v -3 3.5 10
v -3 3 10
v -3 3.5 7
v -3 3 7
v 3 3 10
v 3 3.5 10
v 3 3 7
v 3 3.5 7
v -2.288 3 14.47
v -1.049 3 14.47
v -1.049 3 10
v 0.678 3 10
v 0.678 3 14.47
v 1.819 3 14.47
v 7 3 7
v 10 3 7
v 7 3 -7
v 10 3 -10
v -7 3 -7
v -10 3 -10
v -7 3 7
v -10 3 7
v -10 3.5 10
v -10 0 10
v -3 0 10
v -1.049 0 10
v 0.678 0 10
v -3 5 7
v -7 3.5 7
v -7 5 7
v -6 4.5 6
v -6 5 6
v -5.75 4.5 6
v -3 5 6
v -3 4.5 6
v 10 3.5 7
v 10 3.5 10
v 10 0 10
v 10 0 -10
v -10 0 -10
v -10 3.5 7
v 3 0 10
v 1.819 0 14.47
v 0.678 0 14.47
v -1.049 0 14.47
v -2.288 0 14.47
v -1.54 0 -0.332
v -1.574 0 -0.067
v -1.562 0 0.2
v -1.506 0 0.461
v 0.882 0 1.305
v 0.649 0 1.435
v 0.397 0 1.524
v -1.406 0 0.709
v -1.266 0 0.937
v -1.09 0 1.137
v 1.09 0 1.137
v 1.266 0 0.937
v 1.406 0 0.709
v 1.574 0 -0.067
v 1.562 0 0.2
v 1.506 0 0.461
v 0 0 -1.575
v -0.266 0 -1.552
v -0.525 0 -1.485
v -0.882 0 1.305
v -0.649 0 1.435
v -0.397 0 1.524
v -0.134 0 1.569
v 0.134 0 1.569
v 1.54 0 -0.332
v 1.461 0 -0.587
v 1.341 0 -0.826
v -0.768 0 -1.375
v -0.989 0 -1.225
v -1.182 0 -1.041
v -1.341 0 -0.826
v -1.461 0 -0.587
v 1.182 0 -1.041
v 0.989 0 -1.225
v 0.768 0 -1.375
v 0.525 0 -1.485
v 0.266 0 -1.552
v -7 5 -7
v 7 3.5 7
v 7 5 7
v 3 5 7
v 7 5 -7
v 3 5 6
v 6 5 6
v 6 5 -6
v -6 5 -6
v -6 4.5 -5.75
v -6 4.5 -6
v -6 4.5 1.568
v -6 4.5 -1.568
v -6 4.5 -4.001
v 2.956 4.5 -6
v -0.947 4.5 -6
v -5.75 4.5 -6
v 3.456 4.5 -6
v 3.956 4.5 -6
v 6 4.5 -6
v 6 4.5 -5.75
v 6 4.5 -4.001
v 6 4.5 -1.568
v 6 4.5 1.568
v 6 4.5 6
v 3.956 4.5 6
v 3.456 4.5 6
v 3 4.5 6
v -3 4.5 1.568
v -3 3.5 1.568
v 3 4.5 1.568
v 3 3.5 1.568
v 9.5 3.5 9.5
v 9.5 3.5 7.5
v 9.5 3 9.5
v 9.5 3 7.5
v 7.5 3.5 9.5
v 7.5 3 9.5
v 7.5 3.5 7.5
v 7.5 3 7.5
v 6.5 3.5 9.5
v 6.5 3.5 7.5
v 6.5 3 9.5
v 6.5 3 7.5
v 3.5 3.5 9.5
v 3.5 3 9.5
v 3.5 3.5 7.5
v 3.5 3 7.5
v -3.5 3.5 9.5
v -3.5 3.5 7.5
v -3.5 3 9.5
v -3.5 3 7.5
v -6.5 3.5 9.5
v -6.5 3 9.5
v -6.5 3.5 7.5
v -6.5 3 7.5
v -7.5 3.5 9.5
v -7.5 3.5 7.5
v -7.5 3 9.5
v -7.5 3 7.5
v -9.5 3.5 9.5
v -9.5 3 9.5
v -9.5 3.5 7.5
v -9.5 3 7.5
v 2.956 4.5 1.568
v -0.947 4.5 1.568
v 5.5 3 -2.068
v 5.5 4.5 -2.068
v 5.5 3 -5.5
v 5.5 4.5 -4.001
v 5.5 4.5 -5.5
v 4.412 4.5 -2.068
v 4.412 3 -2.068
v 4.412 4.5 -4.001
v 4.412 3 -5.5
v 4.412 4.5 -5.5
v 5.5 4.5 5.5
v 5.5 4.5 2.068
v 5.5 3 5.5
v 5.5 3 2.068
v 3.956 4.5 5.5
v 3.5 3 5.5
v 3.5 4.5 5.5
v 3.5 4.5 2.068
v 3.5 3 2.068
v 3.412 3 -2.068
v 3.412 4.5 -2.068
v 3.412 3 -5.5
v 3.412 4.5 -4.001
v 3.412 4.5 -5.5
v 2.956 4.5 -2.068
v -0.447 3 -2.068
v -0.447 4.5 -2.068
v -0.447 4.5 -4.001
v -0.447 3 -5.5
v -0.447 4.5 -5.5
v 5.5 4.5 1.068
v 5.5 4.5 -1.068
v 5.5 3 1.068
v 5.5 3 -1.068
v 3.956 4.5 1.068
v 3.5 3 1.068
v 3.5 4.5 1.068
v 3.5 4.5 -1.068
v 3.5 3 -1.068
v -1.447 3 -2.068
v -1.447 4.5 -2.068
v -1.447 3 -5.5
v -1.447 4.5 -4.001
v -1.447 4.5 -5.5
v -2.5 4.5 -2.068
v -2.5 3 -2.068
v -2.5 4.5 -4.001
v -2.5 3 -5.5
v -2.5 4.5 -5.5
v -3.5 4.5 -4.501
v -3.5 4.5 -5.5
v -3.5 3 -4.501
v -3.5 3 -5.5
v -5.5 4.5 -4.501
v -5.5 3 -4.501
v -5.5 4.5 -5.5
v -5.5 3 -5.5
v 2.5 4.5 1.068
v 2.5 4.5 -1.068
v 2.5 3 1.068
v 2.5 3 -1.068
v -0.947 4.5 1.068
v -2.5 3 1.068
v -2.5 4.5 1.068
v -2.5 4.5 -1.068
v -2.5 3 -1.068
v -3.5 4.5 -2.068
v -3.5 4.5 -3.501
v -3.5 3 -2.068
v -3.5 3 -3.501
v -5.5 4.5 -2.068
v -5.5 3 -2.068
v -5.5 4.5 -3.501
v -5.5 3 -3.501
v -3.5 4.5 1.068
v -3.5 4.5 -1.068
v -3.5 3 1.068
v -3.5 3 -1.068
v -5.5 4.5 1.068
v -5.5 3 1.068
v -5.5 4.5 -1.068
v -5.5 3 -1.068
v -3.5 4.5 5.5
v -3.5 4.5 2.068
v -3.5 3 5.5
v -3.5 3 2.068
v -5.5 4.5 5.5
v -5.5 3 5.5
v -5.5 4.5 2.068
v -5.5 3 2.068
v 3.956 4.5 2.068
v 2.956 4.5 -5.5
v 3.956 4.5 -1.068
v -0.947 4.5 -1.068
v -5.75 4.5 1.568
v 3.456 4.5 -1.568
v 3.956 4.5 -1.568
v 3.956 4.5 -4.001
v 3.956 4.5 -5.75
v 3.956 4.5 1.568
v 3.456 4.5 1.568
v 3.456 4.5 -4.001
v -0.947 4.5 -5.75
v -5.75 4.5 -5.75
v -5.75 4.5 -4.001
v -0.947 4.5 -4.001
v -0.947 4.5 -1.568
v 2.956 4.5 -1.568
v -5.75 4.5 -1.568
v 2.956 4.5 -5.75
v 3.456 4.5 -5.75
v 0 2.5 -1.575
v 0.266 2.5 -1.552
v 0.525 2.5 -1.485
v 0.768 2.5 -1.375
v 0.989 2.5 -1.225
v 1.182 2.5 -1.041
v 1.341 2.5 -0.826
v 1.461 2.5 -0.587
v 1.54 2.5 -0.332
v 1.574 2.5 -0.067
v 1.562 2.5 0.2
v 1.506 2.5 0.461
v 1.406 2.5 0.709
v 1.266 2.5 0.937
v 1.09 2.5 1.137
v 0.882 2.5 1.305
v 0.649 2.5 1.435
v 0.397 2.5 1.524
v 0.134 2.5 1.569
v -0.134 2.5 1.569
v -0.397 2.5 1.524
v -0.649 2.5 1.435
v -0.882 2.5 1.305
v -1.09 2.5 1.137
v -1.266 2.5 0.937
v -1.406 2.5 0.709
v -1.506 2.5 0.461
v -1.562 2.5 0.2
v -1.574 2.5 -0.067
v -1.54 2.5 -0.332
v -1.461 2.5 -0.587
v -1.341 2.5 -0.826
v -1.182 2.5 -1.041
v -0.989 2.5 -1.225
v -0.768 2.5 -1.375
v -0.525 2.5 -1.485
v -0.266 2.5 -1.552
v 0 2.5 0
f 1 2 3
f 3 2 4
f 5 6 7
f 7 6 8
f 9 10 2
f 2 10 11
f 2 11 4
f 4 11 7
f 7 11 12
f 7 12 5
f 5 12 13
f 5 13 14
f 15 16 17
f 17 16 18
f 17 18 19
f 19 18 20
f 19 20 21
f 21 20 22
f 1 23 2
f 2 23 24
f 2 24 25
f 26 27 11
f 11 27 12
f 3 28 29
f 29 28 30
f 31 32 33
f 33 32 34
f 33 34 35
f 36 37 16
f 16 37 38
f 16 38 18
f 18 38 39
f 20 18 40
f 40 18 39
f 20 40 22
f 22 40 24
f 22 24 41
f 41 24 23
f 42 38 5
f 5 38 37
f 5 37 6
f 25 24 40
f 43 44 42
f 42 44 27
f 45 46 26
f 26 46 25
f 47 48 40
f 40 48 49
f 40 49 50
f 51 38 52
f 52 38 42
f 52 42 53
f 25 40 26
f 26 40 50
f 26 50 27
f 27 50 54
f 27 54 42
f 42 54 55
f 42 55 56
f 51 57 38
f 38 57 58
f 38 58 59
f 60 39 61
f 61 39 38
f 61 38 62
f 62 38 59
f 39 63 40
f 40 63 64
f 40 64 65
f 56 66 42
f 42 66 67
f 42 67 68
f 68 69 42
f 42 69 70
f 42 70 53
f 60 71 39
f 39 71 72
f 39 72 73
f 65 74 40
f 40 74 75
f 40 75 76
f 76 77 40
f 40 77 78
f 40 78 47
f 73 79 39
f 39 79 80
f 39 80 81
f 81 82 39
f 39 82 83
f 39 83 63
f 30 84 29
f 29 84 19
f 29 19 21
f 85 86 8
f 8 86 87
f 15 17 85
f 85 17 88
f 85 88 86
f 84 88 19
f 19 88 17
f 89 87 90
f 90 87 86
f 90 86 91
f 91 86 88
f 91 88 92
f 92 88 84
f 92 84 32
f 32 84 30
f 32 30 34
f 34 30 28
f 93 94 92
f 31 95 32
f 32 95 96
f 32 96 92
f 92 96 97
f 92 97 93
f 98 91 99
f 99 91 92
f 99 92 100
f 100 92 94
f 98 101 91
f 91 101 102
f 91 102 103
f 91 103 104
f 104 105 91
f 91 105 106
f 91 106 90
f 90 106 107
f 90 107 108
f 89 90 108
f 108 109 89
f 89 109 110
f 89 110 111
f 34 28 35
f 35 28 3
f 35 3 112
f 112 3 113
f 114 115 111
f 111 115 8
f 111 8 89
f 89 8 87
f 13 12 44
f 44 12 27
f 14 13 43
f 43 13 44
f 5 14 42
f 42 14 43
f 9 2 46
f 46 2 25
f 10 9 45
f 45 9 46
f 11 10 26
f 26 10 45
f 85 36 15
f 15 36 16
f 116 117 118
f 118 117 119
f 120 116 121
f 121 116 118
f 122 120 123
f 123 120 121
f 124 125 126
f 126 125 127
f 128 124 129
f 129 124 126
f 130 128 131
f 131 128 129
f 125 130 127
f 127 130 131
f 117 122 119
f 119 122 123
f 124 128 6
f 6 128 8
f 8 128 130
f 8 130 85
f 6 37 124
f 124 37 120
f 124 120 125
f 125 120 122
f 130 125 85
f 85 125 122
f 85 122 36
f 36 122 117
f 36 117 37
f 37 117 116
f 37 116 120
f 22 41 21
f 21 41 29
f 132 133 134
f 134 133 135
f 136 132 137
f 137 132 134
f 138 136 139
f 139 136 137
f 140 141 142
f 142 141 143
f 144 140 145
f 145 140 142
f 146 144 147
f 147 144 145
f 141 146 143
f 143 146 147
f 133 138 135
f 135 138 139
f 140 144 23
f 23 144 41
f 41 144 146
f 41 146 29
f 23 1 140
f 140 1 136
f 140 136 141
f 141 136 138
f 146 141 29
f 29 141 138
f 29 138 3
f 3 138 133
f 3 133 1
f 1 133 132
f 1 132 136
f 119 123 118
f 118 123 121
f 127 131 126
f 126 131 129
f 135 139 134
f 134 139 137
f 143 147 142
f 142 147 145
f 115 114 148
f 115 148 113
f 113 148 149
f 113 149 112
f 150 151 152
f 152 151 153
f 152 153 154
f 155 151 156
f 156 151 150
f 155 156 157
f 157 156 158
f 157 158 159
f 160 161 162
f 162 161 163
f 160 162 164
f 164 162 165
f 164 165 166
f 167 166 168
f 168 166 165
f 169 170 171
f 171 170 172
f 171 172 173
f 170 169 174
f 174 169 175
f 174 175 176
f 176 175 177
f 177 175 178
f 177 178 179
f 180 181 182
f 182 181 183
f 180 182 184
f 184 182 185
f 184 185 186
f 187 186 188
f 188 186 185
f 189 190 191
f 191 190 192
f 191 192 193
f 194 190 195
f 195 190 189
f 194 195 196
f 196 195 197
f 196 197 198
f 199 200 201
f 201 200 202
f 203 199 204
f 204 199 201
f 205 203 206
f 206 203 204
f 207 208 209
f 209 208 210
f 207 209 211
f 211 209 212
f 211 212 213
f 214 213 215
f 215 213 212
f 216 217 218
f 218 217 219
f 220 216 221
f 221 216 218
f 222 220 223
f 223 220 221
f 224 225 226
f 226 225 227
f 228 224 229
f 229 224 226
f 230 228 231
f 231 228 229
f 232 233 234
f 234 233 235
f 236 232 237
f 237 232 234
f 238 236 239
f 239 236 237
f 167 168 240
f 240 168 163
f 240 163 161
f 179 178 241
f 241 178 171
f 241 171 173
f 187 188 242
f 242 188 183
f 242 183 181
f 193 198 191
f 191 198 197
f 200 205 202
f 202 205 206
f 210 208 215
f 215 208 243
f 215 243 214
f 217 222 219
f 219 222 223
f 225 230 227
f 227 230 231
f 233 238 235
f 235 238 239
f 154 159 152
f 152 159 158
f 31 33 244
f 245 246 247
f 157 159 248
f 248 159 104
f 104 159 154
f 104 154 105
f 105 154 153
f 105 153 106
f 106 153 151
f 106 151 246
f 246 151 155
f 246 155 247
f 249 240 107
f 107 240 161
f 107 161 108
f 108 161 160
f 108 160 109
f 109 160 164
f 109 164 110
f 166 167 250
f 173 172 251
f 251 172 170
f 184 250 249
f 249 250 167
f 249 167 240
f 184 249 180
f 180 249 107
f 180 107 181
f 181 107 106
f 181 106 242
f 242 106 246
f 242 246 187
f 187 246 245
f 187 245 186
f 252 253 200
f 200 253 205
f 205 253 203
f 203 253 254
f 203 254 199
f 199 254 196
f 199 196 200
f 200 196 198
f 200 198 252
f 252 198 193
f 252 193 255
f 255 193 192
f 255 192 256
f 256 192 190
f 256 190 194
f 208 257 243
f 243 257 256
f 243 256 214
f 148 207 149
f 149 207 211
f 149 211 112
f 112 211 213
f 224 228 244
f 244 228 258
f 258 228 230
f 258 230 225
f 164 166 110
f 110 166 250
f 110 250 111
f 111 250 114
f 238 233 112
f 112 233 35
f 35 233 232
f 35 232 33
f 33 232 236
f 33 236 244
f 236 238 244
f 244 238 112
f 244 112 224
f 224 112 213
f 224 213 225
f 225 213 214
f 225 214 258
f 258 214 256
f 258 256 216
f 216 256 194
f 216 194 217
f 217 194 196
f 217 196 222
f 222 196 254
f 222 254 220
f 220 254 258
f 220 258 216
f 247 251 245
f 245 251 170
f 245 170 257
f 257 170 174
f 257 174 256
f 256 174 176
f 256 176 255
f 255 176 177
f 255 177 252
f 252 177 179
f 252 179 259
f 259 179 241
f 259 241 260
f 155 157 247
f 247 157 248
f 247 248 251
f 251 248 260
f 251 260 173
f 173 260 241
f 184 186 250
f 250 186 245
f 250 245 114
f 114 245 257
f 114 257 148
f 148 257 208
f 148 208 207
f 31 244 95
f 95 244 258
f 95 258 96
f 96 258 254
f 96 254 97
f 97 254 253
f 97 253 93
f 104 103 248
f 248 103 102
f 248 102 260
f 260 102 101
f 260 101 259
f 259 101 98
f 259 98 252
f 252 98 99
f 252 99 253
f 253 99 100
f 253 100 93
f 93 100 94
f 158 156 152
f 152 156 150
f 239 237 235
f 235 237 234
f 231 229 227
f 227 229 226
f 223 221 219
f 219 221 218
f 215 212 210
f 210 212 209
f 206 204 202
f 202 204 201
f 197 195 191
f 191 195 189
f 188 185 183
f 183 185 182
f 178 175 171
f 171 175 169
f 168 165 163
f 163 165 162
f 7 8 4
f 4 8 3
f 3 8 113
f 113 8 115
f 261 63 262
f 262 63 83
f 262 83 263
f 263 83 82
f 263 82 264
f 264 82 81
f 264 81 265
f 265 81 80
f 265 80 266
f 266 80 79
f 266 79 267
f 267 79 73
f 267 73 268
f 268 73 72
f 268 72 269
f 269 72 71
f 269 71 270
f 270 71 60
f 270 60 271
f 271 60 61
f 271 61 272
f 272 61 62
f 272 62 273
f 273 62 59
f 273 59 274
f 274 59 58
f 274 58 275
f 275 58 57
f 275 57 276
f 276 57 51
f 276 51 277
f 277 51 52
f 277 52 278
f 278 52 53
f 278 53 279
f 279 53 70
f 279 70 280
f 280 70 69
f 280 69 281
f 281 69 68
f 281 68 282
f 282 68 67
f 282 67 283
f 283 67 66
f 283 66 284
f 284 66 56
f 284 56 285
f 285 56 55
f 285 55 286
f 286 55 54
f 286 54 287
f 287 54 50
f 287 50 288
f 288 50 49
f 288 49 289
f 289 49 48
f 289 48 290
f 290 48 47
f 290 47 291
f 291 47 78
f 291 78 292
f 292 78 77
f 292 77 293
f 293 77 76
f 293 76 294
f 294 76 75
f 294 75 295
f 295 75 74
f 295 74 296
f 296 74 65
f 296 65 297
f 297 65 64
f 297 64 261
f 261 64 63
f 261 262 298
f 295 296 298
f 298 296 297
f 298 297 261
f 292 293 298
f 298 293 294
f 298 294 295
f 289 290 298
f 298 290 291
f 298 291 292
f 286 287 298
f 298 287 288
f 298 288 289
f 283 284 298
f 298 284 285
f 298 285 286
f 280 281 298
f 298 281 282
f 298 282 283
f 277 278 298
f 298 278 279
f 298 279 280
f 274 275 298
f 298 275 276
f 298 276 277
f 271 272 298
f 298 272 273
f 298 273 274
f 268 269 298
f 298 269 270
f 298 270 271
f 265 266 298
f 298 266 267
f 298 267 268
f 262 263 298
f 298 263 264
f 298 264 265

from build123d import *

# Parameters (mm, degrees)
CROQUIS1_W              = 20
CROQUIS1_H              = 20
SALIENTE_EXTRUIR1_DEPTH = 3
CROQUIS2_W              = 14
CROQUIS2_H              = 14
SALIENTE_EXTRUIR2_DEPTH = 2
CROQUIS3_W              = 12
CROQUIS3_H              = 12
CORTAR_EXTRUIR1_DEPTH   = 2
CROQUIS4_W              = 6
CROQUIS4_H              = 2.600399467
CORTAR_EXTRUIR2_DEPTH   = 3
SALIENTE_EXTRUIR3_DEPTH = 3
CROQUIS6_W              = 3
CROQUIS6_H              = 3
CROQUIS6_W_2            = 2
CROQUIS6_H_2            = 2
CROQUIS6_W_3            = 4
SALIENTE_EXTRUIR4_DEPTH = 0.5
CROQUIS7_W              = 6
CROQUIS7_H              = 2.831475003
CORTAR_EXTRUIR3_DEPTH   = 1
CROQUIS8_W              = 1
CROQUIS8_H              = 5.440516932
SALIENTE_EXTRUIR5_DEPTH = 0.5
CROQUIS10_W             = 3
CROQUIS10_H             = 4.43187447
CROQUIS10_W_2           = 2
CROQUIS10_H_2           = 3.43187447
CROQUIS10_H_3           = 3.13625106
CROQUIS10_H_4           = 2.13625106
CROQUIS10_H_5           = 2.43247793
CROQUIS10_H_6           = 1.43247793
CROQUIS10_W_3           = 1.053408661
CROQUIS10_W_4           = 3.858734252
CROQUIS10_W_5           = 5
CROQUIS10_W_6           = 2.087857087
CROQUIS10_W_7           = 1.087857087
CROQUIS10_H_7           = 1.99939654
CROQUIS10_H_8           = 0.99939654
SALIENTE_EXTRUIR6_DEPTH = 1.5
CROQUIS11_W             = 6
CROQUIS11_H             = 5.43187447
SALIENTE_EXTRUIR7_DEPTH = 1.5
CROQUIS12_R             = 1.575
CORTAR_EXTRUIR4_DEPTH   = 2.5


with BuildPart() as part:
    # Croquis1 → Saliente-Extruir1 (new body)
    with BuildSketch(Plane(origin=(0, 0, 0), x_dir=(1, 0, 0), z_dir=(0, 1, 0))):
        Rectangle(CROQUIS1_W, CROQUIS1_H)
    extrude(amount=SALIENTE_EXTRUIR1_DEPTH)

    # Croquis2 → Saliente-Extruir2 (add)
    with BuildSketch(Plane(origin=(0, 3, 0), x_dir=(1, 0, 0), z_dir=(0, 1, 0))):
        Rectangle(CROQUIS2_W, CROQUIS2_H)
    extrude(amount=SALIENTE_EXTRUIR2_DEPTH)

    # Croquis3 → Cortar-Extruir1 (cut)
    with BuildSketch(Plane(origin=(0, 5, 0), x_dir=(1, 0, 0), z_dir=(0, 1, 0))):
        Rectangle(CROQUIS3_W, CROQUIS3_H)
    extrude(amount=-CORTAR_EXTRUIR1_DEPTH, mode=Mode.SUBTRACT)

    # Croquis4 → Cortar-Extruir2 (cut)
    with BuildSketch(Plane(origin=(0, 5, 0), x_dir=(1, 0, 0), z_dir=(0, 1, 0))):
        with Locations((0, -5.699800267)):
            Rectangle(CROQUIS4_W, CROQUIS4_H)
    extrude(amount=-CORTAR_EXTRUIR2_DEPTH, mode=Mode.SUBTRACT)

    # Croquis5 → Saliente-Extruir3 (add)
    with BuildSketch(Plane(origin=(0, 0, 0), x_dir=(1, 0, 0), z_dir=(0, 1, 0))):
        Polygon((-3, -10), (-1.049339158, -10), (-1.049339158, -14.469917755), (-2.287906915, -14.469917755), align=None)
        Polygon((0.678136925, -10), (3, -10), (1.818923018, -14.469917755), (0.678136925, -14.469917755), align=None)
    extrude(amount=SALIENTE_EXTRUIR3_DEPTH)

    # Croquis6 → Saliente-Extruir4 (add)
    # profile 1 of 4: a face of its own
    with BuildSketch(Plane(origin=(0, 3, 0), x_dir=(1, 0, 0), z_dir=(0, 1, 0))):
        with Locations((-8.5, -8.5)):
            Rectangle(CROQUIS6_W, CROQUIS6_H)
        with Locations((-8.5, -8.5)):
            Rectangle(CROQUIS6_W_2, CROQUIS6_H_2, mode=Mode.SUBTRACT)
    # profile 2 of 4: a face of its own
    with BuildSketch(Plane(origin=(0, 3, 0), x_dir=(1, 0, 0), z_dir=(0, 1, 0))):
        with Locations((-5, -8.5)):
            Rectangle(CROQUIS6_W_3, CROQUIS6_H)
        with Locations((-5, -8.5)):
            Rectangle(CROQUIS6_W, CROQUIS6_H_2, mode=Mode.SUBTRACT)
    # profile 3 of 4: a face of its own
    with BuildSketch(Plane(origin=(0, 3, 0), x_dir=(1, 0, 0), z_dir=(0, 1, 0))):
        with Locations((5, -8.5)):
            Rectangle(CROQUIS6_W_3, CROQUIS6_H)
        with Locations((5, -8.5)):
            Rectangle(CROQUIS6_W, CROQUIS6_H_2, mode=Mode.SUBTRACT)
    # profile 4 of 4: a face of its own
    with BuildSketch(Plane(origin=(0, 3, 0), x_dir=(1, 0, 0), z_dir=(0, 1, 0))):
        with Locations((8.5, -8.5)):
            Rectangle(CROQUIS6_W, CROQUIS6_H)
        with Locations((8.5, -8.5)):
            Rectangle(CROQUIS6_W_2, CROQUIS6_H_2, mode=Mode.SUBTRACT)
    extrude(amount=SALIENTE_EXTRUIR4_DEPTH)

    # Croquis7 → Cortar-Extruir3 (cut)
    with BuildSketch(Plane(origin=(0, 3, 0), x_dir=(1, 0, 0), z_dir=(0, 1, 0))):
        with Locations((0, -2.983863032)):
            Rectangle(CROQUIS7_W, CROQUIS7_H)
    extrude(amount=-CORTAR_EXTRUIR3_DEPTH, mode=Mode.SUBTRACT)

    # Croquis8 → Saliente-Extruir5 (add)
    with BuildSketch(Plane(origin=(0, 3, 0), x_dir=(1, 0, 0), z_dir=(0, 1, 0))):
        with Locations((-2.5, -4.288383996)):
            Rectangle(CROQUIS8_W, CROQUIS8_H)
    extrude(amount=-SALIENTE_EXTRUIR5_DEPTH)

    # Croquis10 → Saliente-Extruir6 (add)
    # profile 1 of 10: a face of its own
    with BuildSketch(Plane(origin=(0, 3, 0), x_dir=(1, 0, 0), z_dir=(0, 1, 0))):
        with Locations((-4.5, -3.784062765)):
            Rectangle(CROQUIS10_W, CROQUIS10_H)
        with Locations((-4.5, -3.784062765)):
            Rectangle(CROQUIS10_W_2, CROQUIS10_H_2, mode=Mode.SUBTRACT)
    # profile 2 of 10: a face of its own
    with BuildSketch(Plane(origin=(0, 3, 0), x_dir=(1, 0, 0), z_dir=(0, 1, 0))):
        with Locations((-4.5, 0)):
            Rectangle(CROQUIS10_W, CROQUIS10_H_3)
        with Locations((-4.5, 0)):
            Rectangle(CROQUIS10_W_2, CROQUIS10_H_4, mode=Mode.SUBTRACT)
    # profile 3 of 10: a face of its own
    with BuildSketch(Plane(origin=(0, 3, 0), x_dir=(1, 0, 0), z_dir=(0, 1, 0))):
        with Locations((-4.5, 2.784364495)):
            Rectangle(CROQUIS10_W, CROQUIS10_H_5)
        with Locations((-4.5, 2.784364495)):
            Rectangle(CROQUIS10_W_2, CROQUIS10_H_6, mode=Mode.SUBTRACT)
    # profile 4 of 10: a face of its own
    with BuildSketch(Plane(origin=(0, 3, 0), x_dir=(1, 0, 0), z_dir=(0, 1, 0))):
        Polygon((-0.946591339, 6), (-3, 6), (-3, 4.00060346), (-3, 1.56812553), (-0.946591339, 1.56812553), align=None)
        with Locations((-1.97329567, 3.784062765)):
            Rectangle(CROQUIS10_W_3, CROQUIS10_H_2, mode=Mode.SUBTRACT)
    # profile 5 of 10: a face of its own
    with BuildSketch(Plane(origin=(0, 3, 0), x_dir=(1, 0, 0), z_dir=(0, 1, 0))):
        Polygon((3.912142913, 6), (-0.946591339, 6), (-0.946591339, 1.56812553), (3, 1.56812553), (3.912142913, 1.56812553), align=None)
        with Locations((1.482775787, 3.784062765)):
            Rectangle(CROQUIS10_W_4, CROQUIS10_H_2, mode=Mode.SUBTRACT)
    # profile 6 of 10: a face of its own
    with BuildSketch(Plane(origin=(0, 3, 0), x_dir=(1, 0, 0), z_dir=(0, 1, 0))):
        Polygon((-0.946591339, 1.56812553), (-3, 1.56812553), (-3, -1.56812553), (3, -1.56812553), (3, 1.56812553), align=None)
        Rectangle(CROQUIS10_W_5, CROQUIS10_H_4, mode=Mode.SUBTRACT)
    # profile 7 of 10: a face of its own
    with BuildSketch(Plane(origin=(0, 3, 0), x_dir=(1, 0, 0), z_dir=(0, 1, 0))):
        with Locations((4.956071457, 3.784062765)):
            Rectangle(CROQUIS10_W_6, CROQUIS10_H)
        with Locations((4.956071457, 3.784062765)):
            Rectangle(CROQUIS10_W_7, CROQUIS10_H_2, mode=Mode.SUBTRACT)
    # profile 8 of 10: a face of its own
    with BuildSketch(Plane(origin=(0, 3, 0), x_dir=(1, 0, 0), z_dir=(0, 1, 0))):
        Polygon((3.912142913, 1.56812553), (3, 1.56812553), (3, -1.56812553), (6, -1.56812553), (6, 1.56812553), align=None)
        with Locations((4.5, 0)):
            Rectangle(CROQUIS10_W_2, CROQUIS10_H_4, mode=Mode.SUBTRACT)
    # profile 9 of 10: a face of its own
    with BuildSketch(Plane(origin=(0, 3, 0), x_dir=(1, 0, 0), z_dir=(0, 1, 0))):
        with Locations((4.5, -3.784062765)):
            Rectangle(CROQUIS10_W, CROQUIS10_H)
        with Locations((4.5, -3.784062765)):
            Rectangle(CROQUIS10_W_2, CROQUIS10_H_2, mode=Mode.SUBTRACT)
    # profile 10 of 10: a face of its own
    with BuildSketch(Plane(origin=(0, 3, 0), x_dir=(1, 0, 0), z_dir=(0, 1, 0))):
        with Locations((-4.5, 5.00030173)):
            Rectangle(CROQUIS10_W, CROQUIS10_H_7)
        with Locations((-4.5, 5.00030173)):
            Rectangle(CROQUIS10_W_2, CROQUIS10_H_8, mode=Mode.SUBTRACT)
    extrude(amount=SALIENTE_EXTRUIR6_DEPTH)

    # Croquis11 → Saliente-Extruir7 (add)
    with BuildSketch(Plane(origin=(0, 2, 0), x_dir=(1, 0, 0), z_dir=(0, 1, 0))):
        with Locations((0, -4.284062765)):
            Rectangle(CROQUIS11_W, CROQUIS11_H)
    extrude(amount=SALIENTE_EXTRUIR7_DEPTH)

    # Croquis12 → Cortar-Extruir4 (cut)
    with BuildSketch(Plane.XZ):
        with Locations(Location((0, 0, 0), (0, 0, 270))):
            Circle(CROQUIS12_R)
    extrude(amount=-CORTAR_EXTRUIR4_DEPTH, mode=Mode.SUBTRACT)


solid = part.part
